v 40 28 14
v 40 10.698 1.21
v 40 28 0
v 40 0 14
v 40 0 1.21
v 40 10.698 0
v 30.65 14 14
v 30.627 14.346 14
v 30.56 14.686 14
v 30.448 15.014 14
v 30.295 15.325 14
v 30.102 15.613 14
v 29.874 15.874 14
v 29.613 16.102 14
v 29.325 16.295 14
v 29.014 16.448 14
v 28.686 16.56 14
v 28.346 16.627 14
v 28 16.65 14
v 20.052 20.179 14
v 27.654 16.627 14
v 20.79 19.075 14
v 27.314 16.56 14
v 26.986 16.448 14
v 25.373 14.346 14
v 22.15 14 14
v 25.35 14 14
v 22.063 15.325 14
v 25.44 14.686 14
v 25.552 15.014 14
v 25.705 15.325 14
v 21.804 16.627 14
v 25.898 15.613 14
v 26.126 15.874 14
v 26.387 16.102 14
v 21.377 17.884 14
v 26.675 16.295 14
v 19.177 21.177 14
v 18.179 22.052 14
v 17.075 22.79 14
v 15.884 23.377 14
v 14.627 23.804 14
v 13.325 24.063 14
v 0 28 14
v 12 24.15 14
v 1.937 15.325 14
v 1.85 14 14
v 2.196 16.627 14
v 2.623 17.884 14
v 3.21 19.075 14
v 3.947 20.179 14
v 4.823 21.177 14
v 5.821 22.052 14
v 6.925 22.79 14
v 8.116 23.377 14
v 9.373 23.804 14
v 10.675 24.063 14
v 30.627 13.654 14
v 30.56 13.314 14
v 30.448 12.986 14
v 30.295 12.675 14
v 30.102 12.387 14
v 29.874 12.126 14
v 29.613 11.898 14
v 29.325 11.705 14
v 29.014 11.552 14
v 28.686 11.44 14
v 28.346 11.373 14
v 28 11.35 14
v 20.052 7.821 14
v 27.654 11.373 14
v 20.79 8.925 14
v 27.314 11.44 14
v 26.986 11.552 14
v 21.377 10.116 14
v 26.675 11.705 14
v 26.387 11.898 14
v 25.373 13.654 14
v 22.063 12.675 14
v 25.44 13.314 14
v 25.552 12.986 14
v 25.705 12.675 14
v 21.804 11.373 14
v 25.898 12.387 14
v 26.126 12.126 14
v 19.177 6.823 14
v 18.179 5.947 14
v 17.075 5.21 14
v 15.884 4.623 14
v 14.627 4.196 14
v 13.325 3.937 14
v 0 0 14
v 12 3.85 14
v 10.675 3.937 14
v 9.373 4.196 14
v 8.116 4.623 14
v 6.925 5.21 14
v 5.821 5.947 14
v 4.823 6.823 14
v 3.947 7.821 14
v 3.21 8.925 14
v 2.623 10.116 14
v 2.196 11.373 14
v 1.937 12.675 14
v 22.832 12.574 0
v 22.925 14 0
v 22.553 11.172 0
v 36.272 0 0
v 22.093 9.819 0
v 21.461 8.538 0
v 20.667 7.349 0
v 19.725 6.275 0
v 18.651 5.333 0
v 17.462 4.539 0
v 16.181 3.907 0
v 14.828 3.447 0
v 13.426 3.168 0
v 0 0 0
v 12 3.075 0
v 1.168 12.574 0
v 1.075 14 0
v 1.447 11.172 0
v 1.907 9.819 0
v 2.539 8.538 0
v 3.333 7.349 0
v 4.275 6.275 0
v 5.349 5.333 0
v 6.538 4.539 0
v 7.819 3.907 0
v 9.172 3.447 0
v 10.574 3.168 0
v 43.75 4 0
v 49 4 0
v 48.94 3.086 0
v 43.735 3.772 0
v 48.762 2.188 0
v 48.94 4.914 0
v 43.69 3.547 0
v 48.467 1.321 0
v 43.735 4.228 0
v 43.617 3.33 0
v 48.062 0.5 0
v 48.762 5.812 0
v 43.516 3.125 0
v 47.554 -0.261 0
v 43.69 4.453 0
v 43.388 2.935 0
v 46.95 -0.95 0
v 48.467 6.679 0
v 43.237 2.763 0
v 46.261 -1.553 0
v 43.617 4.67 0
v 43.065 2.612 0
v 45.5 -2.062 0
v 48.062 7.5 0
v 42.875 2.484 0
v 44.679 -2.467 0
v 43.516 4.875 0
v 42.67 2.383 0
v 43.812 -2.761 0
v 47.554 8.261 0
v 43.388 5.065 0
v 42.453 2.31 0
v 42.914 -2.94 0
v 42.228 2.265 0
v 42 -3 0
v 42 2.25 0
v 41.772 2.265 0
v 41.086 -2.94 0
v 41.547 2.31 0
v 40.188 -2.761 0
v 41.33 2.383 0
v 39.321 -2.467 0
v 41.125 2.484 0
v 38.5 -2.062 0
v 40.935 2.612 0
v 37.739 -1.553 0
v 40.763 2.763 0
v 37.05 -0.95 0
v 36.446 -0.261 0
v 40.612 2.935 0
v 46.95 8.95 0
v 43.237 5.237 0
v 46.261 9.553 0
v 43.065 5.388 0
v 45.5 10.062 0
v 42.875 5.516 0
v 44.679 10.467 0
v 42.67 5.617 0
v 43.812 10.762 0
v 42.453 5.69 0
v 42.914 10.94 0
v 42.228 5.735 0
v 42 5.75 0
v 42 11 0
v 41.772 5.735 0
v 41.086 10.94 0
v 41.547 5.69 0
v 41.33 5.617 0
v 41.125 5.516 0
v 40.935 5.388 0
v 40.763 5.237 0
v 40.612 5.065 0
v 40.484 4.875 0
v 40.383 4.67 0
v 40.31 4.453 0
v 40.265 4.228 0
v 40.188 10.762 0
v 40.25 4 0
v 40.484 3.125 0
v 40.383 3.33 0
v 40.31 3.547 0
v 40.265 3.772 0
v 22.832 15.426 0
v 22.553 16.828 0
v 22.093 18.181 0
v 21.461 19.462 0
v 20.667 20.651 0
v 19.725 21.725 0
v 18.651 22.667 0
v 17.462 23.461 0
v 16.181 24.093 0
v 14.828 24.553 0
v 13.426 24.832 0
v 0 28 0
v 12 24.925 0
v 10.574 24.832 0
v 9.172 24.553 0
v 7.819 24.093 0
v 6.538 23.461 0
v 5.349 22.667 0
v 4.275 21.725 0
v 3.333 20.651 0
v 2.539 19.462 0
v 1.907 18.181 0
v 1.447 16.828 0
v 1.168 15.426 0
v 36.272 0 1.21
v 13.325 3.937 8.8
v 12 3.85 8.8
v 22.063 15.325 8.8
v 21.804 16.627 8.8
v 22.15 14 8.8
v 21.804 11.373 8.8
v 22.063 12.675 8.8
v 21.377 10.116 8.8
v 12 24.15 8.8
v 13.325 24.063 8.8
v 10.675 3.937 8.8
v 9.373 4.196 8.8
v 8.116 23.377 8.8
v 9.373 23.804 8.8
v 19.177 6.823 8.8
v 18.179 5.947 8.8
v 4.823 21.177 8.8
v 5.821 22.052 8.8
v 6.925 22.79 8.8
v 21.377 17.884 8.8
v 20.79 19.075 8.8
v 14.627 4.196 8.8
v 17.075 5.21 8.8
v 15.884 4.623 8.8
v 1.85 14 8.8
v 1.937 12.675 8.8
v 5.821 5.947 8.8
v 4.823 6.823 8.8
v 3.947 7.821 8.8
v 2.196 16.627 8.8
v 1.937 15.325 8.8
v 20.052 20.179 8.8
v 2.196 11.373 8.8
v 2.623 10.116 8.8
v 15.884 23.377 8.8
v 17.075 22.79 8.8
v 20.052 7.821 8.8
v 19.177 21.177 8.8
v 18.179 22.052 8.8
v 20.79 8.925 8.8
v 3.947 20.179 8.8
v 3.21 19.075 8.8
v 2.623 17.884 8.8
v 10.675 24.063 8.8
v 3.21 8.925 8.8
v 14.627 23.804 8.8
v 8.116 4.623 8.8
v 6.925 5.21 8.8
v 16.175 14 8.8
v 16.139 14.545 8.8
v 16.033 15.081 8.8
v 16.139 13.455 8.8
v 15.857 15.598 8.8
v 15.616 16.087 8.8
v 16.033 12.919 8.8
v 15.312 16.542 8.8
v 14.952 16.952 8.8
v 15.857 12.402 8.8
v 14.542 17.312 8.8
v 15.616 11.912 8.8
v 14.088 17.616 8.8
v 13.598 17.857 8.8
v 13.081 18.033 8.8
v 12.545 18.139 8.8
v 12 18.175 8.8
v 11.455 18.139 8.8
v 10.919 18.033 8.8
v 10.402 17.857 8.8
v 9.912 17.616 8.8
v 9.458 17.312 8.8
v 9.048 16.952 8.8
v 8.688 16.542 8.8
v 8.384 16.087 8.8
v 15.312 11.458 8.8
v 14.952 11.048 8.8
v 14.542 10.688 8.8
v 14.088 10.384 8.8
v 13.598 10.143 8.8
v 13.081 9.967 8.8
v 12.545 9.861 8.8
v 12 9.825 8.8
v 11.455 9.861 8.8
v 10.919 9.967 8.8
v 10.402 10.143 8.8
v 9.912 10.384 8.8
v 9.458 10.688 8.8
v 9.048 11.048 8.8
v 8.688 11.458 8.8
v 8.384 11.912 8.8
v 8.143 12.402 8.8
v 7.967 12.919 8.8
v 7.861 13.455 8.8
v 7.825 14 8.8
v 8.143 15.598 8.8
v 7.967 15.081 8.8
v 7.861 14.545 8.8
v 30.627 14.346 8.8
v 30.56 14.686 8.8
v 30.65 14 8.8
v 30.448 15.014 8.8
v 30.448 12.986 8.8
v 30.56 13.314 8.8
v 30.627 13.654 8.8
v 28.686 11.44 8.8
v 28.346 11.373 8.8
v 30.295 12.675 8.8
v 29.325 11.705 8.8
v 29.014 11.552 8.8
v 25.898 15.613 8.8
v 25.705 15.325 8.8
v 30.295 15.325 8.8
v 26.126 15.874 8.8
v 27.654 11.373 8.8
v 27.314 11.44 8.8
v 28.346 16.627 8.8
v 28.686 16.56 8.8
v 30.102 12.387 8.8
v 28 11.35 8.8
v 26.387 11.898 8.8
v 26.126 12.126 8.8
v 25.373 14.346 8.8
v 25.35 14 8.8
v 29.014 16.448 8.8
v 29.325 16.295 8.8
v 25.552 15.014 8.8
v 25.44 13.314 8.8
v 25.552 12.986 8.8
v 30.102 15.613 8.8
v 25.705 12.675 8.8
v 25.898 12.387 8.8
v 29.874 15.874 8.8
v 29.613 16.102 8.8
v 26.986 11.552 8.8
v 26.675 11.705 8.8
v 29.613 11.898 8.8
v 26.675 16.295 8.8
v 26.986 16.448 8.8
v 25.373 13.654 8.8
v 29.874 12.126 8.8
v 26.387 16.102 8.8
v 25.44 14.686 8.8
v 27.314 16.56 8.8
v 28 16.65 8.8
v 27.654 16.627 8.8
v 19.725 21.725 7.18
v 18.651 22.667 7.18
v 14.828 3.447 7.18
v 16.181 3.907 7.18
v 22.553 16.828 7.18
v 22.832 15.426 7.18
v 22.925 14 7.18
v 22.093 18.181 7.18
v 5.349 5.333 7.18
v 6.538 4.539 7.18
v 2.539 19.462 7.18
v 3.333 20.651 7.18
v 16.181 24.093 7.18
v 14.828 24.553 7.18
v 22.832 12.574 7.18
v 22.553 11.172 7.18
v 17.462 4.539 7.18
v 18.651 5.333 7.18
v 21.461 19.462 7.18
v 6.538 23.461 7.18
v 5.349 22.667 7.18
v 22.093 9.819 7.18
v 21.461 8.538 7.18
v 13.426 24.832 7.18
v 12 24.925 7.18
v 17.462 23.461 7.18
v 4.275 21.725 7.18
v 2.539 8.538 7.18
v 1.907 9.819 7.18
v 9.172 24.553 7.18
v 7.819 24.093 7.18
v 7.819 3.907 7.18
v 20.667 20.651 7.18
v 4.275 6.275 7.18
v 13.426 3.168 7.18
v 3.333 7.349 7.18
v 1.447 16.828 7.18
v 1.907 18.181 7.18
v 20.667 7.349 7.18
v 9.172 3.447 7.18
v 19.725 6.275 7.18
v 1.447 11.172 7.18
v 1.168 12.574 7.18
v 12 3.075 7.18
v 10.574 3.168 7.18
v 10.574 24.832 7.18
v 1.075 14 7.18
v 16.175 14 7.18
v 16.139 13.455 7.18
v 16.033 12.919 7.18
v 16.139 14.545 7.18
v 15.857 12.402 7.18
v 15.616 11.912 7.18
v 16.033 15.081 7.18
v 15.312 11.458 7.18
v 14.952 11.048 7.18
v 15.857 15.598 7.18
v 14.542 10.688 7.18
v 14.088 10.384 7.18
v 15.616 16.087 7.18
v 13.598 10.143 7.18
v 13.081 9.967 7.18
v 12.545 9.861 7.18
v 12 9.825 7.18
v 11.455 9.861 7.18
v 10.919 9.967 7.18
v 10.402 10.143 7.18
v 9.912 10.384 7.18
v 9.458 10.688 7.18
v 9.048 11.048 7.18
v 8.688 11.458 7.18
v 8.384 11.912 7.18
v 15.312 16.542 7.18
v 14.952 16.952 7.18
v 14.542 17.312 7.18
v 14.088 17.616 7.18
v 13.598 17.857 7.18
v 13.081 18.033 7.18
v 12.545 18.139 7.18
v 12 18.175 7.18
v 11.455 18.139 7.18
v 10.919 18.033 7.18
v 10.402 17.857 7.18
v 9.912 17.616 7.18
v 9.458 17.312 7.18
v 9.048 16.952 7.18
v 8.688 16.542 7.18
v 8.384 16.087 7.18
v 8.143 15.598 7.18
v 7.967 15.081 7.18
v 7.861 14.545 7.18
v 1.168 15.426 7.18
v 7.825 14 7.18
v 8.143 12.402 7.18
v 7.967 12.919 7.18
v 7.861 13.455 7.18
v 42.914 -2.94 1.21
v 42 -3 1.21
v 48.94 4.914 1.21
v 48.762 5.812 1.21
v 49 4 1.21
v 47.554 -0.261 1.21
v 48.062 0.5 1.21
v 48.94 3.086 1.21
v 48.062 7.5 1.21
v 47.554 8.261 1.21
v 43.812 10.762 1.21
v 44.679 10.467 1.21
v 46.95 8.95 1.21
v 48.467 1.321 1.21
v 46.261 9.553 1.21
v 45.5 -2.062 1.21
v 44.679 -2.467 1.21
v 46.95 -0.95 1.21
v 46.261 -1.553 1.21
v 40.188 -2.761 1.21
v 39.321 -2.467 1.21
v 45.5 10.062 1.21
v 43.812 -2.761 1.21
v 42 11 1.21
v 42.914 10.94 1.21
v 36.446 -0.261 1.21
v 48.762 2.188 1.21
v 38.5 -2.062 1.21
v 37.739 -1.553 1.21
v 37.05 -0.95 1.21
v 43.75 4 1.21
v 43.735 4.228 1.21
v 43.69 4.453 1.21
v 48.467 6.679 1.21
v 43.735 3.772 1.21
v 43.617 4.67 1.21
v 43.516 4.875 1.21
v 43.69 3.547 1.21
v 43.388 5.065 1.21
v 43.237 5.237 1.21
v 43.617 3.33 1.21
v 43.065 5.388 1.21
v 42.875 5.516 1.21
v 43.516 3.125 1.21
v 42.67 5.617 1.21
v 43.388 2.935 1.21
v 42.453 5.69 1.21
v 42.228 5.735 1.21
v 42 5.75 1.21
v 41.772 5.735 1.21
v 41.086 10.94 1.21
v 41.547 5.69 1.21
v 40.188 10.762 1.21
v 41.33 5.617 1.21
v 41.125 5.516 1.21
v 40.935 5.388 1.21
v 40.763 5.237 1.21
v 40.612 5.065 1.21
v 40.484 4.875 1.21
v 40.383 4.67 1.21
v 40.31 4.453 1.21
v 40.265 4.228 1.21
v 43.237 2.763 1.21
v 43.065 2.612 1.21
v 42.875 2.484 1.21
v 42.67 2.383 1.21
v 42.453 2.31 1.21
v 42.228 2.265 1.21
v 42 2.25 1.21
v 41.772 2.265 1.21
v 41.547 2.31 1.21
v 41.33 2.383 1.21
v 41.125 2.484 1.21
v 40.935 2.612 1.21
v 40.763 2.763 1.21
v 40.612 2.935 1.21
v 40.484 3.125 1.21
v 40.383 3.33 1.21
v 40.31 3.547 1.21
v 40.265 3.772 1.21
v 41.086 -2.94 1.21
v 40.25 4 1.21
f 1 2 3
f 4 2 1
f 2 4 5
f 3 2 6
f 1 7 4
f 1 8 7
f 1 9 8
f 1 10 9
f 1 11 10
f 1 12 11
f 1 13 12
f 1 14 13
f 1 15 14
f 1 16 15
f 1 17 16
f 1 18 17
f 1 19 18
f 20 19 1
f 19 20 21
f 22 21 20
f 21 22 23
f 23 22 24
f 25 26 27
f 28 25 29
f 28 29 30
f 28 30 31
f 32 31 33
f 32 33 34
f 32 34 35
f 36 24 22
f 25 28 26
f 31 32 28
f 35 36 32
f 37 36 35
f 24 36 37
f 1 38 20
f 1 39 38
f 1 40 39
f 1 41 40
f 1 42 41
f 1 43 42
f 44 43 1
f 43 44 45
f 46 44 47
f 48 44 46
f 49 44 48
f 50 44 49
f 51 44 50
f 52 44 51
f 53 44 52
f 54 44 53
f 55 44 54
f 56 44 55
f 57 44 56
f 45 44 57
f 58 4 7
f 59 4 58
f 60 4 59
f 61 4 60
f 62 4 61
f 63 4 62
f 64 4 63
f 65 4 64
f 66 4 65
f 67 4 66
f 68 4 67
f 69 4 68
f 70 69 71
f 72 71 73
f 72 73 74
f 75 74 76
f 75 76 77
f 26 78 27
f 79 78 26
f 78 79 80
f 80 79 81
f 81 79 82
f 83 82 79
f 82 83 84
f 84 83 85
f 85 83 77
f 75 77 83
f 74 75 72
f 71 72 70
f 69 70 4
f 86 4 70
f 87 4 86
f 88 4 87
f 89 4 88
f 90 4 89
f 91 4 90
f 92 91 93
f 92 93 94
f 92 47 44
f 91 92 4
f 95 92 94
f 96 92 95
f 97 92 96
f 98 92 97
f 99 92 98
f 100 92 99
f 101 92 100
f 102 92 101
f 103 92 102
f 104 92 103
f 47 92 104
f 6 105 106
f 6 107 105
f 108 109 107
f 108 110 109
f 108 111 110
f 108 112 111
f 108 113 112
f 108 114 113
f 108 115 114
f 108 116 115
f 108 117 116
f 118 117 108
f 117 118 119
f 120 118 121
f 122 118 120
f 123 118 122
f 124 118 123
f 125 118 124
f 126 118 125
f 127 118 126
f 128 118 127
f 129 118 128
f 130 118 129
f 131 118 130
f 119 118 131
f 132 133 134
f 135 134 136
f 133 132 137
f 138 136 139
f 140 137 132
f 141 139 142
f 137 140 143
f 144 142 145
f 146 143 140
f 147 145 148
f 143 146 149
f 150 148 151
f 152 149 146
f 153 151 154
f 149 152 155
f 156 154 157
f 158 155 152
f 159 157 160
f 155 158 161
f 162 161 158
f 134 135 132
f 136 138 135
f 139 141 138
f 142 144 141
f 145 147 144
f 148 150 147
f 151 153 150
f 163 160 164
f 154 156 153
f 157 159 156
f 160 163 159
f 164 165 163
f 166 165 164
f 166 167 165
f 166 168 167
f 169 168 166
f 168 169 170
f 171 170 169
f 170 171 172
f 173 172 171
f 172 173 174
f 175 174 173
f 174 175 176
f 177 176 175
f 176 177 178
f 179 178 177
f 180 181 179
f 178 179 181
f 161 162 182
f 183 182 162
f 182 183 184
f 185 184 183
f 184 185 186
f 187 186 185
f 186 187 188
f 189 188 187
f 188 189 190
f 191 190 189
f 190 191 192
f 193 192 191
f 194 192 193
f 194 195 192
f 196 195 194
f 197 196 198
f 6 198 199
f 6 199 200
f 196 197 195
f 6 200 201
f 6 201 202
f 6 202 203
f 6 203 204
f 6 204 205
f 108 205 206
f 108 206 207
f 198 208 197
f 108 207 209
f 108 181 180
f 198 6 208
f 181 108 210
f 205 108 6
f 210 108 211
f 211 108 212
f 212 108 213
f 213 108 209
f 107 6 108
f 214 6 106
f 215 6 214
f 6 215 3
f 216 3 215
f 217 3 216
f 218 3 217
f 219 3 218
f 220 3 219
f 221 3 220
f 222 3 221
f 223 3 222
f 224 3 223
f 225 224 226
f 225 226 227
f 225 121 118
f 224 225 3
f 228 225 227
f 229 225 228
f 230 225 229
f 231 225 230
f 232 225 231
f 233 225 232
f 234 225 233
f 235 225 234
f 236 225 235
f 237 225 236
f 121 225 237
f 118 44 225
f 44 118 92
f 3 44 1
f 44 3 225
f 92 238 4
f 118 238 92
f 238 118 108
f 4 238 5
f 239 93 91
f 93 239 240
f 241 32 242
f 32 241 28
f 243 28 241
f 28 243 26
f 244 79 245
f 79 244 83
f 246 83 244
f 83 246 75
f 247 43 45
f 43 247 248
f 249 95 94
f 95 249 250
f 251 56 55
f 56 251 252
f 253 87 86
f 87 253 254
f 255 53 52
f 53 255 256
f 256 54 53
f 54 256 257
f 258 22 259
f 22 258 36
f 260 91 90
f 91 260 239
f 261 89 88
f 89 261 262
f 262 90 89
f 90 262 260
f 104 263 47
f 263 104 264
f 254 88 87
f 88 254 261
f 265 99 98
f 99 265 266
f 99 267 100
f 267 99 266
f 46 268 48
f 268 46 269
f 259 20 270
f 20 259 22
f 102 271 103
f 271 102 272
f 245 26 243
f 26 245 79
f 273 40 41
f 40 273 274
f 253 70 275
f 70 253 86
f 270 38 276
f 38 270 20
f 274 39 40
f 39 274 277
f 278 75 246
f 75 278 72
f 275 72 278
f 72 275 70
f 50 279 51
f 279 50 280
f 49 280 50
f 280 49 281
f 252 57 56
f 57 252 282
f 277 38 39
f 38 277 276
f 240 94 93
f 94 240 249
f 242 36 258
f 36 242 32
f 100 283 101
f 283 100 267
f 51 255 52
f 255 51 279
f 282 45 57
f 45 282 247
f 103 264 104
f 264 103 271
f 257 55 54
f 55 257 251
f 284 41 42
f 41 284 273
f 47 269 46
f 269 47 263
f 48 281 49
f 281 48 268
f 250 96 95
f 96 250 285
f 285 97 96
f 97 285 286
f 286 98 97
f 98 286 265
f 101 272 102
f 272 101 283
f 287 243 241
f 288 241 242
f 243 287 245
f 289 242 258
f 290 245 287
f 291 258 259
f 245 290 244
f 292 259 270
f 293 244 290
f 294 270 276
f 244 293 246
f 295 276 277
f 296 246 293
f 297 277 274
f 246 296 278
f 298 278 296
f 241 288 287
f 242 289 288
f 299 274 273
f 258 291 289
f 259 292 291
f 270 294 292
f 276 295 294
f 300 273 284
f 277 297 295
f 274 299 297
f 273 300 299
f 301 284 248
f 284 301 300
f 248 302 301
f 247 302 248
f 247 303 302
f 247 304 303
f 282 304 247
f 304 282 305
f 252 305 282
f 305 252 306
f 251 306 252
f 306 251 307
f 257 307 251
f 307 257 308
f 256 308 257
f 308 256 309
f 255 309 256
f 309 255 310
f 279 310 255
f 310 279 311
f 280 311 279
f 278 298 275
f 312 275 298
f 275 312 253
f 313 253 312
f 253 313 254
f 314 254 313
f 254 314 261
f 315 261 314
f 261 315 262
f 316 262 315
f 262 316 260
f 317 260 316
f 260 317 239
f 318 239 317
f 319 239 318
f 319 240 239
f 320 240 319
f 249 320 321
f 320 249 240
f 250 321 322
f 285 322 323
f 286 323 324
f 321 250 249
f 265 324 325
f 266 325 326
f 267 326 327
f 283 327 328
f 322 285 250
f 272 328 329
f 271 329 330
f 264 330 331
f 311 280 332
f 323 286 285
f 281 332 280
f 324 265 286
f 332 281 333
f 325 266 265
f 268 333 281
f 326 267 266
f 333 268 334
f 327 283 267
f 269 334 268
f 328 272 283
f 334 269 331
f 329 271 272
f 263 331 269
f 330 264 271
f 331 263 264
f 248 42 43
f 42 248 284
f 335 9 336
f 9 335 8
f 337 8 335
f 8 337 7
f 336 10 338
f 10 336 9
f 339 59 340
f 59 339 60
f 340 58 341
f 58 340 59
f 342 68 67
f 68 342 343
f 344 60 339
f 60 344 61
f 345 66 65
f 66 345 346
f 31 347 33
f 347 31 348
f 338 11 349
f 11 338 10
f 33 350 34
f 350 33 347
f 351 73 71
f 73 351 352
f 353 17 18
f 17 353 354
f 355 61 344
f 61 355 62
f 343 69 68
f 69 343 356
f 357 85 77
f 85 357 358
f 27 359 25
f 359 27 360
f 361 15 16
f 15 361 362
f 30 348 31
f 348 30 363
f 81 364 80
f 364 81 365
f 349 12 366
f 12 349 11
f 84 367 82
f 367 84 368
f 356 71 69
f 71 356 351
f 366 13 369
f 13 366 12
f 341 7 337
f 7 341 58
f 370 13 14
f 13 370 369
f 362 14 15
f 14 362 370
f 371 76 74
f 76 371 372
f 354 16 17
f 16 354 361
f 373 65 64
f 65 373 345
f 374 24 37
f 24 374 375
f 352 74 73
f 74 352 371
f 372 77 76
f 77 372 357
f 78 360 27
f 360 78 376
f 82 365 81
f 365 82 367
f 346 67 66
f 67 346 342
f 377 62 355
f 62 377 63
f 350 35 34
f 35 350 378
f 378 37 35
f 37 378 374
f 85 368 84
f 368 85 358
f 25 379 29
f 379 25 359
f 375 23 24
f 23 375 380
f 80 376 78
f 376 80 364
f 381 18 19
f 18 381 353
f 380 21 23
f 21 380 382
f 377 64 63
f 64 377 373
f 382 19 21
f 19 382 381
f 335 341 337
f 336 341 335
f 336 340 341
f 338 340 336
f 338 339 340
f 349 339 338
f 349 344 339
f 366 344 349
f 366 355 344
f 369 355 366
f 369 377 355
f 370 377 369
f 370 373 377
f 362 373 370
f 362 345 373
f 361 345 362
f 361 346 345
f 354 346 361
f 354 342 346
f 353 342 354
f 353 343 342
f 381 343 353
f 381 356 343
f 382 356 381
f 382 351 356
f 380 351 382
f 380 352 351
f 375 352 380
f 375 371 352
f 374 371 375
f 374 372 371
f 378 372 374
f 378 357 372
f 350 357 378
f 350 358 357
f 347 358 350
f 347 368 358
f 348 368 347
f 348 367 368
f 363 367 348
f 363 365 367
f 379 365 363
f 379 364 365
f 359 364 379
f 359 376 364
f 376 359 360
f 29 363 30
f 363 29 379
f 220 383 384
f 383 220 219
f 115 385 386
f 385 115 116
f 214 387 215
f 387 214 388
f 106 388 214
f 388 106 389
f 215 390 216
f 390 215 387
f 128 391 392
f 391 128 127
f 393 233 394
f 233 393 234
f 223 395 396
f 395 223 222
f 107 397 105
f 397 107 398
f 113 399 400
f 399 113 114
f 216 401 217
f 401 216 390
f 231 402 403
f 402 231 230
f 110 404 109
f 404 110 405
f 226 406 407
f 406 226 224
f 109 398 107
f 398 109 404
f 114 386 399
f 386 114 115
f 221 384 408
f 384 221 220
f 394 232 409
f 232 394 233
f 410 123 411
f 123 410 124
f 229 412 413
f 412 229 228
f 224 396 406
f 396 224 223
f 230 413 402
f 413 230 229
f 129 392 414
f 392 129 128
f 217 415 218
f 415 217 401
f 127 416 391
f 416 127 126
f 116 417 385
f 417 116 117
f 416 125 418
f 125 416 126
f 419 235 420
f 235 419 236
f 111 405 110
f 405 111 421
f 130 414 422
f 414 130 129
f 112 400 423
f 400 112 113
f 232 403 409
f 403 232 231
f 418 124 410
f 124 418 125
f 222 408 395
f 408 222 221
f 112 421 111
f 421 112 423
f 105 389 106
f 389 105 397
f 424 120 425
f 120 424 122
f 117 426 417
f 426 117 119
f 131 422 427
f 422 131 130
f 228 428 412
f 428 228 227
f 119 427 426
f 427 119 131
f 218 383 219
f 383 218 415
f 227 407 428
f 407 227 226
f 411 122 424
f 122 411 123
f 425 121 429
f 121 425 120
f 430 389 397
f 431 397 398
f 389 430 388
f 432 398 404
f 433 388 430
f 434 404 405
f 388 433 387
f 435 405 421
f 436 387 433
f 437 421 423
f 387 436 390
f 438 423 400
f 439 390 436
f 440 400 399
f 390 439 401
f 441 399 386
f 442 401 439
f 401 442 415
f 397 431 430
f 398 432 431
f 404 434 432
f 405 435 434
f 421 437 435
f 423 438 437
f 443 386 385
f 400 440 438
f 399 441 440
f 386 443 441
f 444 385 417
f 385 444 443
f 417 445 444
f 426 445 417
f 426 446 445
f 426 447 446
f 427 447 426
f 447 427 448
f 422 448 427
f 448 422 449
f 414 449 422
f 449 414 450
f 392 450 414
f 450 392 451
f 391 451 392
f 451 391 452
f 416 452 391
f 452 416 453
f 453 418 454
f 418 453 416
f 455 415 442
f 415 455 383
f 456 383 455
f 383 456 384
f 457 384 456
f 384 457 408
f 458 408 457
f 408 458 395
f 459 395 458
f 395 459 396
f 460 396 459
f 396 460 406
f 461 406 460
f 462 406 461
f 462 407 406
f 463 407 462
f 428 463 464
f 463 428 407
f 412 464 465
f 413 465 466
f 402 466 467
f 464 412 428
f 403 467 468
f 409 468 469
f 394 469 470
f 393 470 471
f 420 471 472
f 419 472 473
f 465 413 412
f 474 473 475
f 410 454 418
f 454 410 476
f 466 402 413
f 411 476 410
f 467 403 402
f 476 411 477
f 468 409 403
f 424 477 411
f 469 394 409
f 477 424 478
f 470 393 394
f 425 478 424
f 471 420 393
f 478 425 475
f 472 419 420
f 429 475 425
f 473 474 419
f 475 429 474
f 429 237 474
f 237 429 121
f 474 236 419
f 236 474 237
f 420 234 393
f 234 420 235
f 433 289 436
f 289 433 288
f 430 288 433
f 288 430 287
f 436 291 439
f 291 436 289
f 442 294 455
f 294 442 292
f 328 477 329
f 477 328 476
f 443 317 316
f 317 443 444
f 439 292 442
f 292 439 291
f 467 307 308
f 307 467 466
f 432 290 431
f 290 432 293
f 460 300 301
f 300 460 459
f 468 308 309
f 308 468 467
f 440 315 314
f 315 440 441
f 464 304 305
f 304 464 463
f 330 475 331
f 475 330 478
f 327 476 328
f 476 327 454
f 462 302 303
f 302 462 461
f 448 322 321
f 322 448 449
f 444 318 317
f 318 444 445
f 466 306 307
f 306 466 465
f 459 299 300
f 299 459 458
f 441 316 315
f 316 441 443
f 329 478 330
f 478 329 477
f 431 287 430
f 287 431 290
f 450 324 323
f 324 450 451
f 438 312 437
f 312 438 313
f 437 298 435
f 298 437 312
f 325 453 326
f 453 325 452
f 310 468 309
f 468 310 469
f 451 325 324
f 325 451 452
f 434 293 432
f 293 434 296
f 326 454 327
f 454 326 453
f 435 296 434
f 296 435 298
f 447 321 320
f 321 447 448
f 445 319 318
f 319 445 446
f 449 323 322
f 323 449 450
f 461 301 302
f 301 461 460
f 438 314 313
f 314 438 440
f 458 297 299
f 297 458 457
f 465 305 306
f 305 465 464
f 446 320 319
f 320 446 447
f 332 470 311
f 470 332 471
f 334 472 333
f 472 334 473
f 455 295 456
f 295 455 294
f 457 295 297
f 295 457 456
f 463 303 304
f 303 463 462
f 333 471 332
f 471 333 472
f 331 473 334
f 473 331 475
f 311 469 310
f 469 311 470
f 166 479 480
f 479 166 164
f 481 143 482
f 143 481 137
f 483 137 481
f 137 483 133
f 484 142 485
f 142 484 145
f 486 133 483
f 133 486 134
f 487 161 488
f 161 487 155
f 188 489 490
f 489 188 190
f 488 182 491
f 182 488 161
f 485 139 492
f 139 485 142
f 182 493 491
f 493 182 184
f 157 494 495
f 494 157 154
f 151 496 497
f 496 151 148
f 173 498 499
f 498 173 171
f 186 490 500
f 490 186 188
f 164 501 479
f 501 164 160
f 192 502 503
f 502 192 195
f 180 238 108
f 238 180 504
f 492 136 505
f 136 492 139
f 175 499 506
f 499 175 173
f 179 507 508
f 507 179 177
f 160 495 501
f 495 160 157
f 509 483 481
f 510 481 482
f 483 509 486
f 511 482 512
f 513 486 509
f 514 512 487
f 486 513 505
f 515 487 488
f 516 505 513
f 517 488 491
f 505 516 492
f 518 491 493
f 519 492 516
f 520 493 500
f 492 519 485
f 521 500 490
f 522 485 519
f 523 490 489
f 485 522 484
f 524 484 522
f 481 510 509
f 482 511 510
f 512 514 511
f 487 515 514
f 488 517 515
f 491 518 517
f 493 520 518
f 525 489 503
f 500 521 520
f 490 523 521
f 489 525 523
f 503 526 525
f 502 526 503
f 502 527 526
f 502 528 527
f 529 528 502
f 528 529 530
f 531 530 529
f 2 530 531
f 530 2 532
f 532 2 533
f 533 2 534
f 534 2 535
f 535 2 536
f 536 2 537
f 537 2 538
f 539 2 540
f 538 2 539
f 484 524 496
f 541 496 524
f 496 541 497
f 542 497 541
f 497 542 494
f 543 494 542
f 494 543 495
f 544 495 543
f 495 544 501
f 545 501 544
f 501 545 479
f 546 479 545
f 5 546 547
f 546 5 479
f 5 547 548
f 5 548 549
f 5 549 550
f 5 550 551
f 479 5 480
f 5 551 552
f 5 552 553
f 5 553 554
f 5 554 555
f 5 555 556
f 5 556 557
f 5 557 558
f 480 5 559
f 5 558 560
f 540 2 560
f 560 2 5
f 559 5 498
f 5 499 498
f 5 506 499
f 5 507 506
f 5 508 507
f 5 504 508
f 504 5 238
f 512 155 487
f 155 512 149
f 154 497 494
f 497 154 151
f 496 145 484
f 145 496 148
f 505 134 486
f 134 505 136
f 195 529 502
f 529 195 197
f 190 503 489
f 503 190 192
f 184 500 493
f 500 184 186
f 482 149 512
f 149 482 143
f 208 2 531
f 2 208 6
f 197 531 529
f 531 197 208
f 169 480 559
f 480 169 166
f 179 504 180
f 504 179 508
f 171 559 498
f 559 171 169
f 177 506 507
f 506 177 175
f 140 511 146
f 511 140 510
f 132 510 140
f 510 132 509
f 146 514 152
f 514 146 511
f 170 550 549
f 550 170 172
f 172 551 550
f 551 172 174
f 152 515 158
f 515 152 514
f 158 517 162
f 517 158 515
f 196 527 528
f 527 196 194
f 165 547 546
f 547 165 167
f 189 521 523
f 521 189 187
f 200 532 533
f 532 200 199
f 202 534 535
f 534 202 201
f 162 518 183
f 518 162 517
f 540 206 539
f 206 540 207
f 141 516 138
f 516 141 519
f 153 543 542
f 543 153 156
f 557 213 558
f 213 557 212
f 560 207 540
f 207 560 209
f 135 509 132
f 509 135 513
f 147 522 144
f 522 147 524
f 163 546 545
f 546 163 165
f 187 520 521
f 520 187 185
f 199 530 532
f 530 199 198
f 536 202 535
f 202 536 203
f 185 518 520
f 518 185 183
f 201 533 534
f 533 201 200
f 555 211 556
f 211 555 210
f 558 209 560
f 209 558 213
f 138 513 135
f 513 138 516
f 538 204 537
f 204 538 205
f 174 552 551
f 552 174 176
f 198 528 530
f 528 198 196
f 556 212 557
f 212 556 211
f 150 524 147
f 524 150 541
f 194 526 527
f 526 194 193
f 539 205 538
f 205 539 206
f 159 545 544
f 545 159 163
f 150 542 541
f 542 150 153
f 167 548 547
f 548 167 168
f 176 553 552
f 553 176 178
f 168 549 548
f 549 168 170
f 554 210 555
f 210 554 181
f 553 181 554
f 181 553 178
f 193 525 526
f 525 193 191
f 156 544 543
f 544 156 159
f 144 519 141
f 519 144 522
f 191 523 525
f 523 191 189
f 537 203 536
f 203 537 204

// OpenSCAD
// file: parameters.scad
// =============================================================================
// Gen-AB Dual-rotor ULTRA-MICRO-GAP copper-max AFPM — WOUND-AWARE (HARD GATE)
// PRIMARY challenger vs Gen-Y. Thinner m2m + larger copper window + 160 t.
// =============================================================================

// --- Wire / wind budget (26 AWG, ~1 lb spool ≈ 390 m bare-equiv) --------------
wire_awg            = 26;
wire_od             = 0.45;     // insulated OD mm
turns               = 160;      // +10 vs Gen-Y 150
fill                = 0.70;
layers_per_face     = 2;        // axial layers proud of EACH flange
wind_build_axial    = layers_per_face * wire_od * fill;   // 0.63 mm
wind_build_radial   = 3 * wire_od * fill;                 // 0.945 mm

// --- Pancake former (bare STL) — thinner web/flange than Gen-Y ---------------
coil_id_r           = 20.0;     // larger copper window vs Gen-Y 21–60
coil_od_r           = 62.0;
span_deg            = 26.0;     // 12 stations × 30° pitch
former_web          = 1.6;      // print-safe min
flange_t            = 0.60;     // print-safe min (≥0.6)
wall                = 1.2;
slot_w              = 2.4;
mount_hole          = 3.5;
tab_len             = 7.0;

former_bare_h       = former_web + 2 * flange_t;            // 2.8 mm
coil_envelope_h     = former_bare_h + 2 * wind_build_axial; // 4.06 mm

// --- Running clearance (magnet face → WOUND face) EACH side ------------------
run_clear           = 0.58;     // PASS ≥ 0.5 (prefer ≥0.65; ultra-micro 0.55–0.60 band)
gap_spacer_h        = run_clear + wind_build_axial;         // 1.21 mm
m2m                 = coil_envelope_h + 2 * run_clear;      // 5.22 mm (beats Gen-Y 5.76)

// --- Mid stator (12 pancakes 3φ; winds proud both faces) ---------------------
coil_stations       = 12;
bay_r_in            = coil_id_r - 2.0 - wind_build_radial;
bay_r_out           = coil_od_r + 2.0 + wind_build_radial;
bay_span            = span_deg + 4.0;
bay_offset          = 2.0;
stator_thick        = former_bare_h;                        // winds proud ±Z
stator_od           = 156.0;
shaft_clear_stator  = 36.0;
coil_mount_r        = 28.0;

// --- Rotors (×2) — 8×Ø20 + 24×Ø5 Halbach each face ---------------------------
large_pocket_d      = 20.3;
small_pocket_d      = 5.3;
pocket_h            = 5.2;
large_n             = 8;
R_large             = 52.0;
R_small_inner       = 40.0;
R_small_mid         = 52.0;
R_small_outer       = 64.0;
carrier_od          = 152.0;
carrier_thick       = 7.5;
hub_h               = 10.0;
hub_od              = 30.0;
rotor_b_offset_deg  = 22.5;

// --- Modular MAX interface (Gen-E family) ------------------------------------
shaft_bore          = 8.35;
bearing_d           = 21.85;
bearing_h           = 7.2;
m3_clear            = 3.5;
bolt_r_inner        = 36.0;
bolt_n_inner        = 6;
flange_bolt_r       = 72.0;
flange_bolt_n       = 6;
brace_r             = 68.0;
brace_d             = 4.3;
brace_n             = 4;

spacer_pad_od       = 14.0;
spacer_pad_id       = m3_clear;
endbell_od          = 156.0;
endbell_thick       = 8.0;
endbell_shaft_clear = 10.0;

$fn = 64;
// main file
// Gen-AB fit coupon — magnet pockets + 608 + spacer height
include <parameters.scad>;
$fn = 48;
block_w = 40; block_d = 28; block_h = 14;
difference() {
    cube([block_w, block_d, block_h]);
    translate([12, block_d/2, block_h - pocket_h])
        cylinder(d=large_pocket_d, h=pocket_h + 0.2);
    translate([28, block_d/2, block_h - pocket_h])
        cylinder(d=small_pocket_d, h=pocket_h + 0.2);
    translate([12, block_d/2, -0.02])
        cylinder(d=bearing_d, h=bearing_h);
    translate([12, block_d/2, -0.1])
        cylinder(d=shaft_bore, h=block_h + 1);
}
translate([block_w + 2, 4, 0])
    difference() {
        cylinder(d=spacer_pad_od, h=gap_spacer_h);
        translate([0, 0, -0.1]) cylinder(d=spacer_pad_id, h=gap_spacer_h + 0.2);
    }
